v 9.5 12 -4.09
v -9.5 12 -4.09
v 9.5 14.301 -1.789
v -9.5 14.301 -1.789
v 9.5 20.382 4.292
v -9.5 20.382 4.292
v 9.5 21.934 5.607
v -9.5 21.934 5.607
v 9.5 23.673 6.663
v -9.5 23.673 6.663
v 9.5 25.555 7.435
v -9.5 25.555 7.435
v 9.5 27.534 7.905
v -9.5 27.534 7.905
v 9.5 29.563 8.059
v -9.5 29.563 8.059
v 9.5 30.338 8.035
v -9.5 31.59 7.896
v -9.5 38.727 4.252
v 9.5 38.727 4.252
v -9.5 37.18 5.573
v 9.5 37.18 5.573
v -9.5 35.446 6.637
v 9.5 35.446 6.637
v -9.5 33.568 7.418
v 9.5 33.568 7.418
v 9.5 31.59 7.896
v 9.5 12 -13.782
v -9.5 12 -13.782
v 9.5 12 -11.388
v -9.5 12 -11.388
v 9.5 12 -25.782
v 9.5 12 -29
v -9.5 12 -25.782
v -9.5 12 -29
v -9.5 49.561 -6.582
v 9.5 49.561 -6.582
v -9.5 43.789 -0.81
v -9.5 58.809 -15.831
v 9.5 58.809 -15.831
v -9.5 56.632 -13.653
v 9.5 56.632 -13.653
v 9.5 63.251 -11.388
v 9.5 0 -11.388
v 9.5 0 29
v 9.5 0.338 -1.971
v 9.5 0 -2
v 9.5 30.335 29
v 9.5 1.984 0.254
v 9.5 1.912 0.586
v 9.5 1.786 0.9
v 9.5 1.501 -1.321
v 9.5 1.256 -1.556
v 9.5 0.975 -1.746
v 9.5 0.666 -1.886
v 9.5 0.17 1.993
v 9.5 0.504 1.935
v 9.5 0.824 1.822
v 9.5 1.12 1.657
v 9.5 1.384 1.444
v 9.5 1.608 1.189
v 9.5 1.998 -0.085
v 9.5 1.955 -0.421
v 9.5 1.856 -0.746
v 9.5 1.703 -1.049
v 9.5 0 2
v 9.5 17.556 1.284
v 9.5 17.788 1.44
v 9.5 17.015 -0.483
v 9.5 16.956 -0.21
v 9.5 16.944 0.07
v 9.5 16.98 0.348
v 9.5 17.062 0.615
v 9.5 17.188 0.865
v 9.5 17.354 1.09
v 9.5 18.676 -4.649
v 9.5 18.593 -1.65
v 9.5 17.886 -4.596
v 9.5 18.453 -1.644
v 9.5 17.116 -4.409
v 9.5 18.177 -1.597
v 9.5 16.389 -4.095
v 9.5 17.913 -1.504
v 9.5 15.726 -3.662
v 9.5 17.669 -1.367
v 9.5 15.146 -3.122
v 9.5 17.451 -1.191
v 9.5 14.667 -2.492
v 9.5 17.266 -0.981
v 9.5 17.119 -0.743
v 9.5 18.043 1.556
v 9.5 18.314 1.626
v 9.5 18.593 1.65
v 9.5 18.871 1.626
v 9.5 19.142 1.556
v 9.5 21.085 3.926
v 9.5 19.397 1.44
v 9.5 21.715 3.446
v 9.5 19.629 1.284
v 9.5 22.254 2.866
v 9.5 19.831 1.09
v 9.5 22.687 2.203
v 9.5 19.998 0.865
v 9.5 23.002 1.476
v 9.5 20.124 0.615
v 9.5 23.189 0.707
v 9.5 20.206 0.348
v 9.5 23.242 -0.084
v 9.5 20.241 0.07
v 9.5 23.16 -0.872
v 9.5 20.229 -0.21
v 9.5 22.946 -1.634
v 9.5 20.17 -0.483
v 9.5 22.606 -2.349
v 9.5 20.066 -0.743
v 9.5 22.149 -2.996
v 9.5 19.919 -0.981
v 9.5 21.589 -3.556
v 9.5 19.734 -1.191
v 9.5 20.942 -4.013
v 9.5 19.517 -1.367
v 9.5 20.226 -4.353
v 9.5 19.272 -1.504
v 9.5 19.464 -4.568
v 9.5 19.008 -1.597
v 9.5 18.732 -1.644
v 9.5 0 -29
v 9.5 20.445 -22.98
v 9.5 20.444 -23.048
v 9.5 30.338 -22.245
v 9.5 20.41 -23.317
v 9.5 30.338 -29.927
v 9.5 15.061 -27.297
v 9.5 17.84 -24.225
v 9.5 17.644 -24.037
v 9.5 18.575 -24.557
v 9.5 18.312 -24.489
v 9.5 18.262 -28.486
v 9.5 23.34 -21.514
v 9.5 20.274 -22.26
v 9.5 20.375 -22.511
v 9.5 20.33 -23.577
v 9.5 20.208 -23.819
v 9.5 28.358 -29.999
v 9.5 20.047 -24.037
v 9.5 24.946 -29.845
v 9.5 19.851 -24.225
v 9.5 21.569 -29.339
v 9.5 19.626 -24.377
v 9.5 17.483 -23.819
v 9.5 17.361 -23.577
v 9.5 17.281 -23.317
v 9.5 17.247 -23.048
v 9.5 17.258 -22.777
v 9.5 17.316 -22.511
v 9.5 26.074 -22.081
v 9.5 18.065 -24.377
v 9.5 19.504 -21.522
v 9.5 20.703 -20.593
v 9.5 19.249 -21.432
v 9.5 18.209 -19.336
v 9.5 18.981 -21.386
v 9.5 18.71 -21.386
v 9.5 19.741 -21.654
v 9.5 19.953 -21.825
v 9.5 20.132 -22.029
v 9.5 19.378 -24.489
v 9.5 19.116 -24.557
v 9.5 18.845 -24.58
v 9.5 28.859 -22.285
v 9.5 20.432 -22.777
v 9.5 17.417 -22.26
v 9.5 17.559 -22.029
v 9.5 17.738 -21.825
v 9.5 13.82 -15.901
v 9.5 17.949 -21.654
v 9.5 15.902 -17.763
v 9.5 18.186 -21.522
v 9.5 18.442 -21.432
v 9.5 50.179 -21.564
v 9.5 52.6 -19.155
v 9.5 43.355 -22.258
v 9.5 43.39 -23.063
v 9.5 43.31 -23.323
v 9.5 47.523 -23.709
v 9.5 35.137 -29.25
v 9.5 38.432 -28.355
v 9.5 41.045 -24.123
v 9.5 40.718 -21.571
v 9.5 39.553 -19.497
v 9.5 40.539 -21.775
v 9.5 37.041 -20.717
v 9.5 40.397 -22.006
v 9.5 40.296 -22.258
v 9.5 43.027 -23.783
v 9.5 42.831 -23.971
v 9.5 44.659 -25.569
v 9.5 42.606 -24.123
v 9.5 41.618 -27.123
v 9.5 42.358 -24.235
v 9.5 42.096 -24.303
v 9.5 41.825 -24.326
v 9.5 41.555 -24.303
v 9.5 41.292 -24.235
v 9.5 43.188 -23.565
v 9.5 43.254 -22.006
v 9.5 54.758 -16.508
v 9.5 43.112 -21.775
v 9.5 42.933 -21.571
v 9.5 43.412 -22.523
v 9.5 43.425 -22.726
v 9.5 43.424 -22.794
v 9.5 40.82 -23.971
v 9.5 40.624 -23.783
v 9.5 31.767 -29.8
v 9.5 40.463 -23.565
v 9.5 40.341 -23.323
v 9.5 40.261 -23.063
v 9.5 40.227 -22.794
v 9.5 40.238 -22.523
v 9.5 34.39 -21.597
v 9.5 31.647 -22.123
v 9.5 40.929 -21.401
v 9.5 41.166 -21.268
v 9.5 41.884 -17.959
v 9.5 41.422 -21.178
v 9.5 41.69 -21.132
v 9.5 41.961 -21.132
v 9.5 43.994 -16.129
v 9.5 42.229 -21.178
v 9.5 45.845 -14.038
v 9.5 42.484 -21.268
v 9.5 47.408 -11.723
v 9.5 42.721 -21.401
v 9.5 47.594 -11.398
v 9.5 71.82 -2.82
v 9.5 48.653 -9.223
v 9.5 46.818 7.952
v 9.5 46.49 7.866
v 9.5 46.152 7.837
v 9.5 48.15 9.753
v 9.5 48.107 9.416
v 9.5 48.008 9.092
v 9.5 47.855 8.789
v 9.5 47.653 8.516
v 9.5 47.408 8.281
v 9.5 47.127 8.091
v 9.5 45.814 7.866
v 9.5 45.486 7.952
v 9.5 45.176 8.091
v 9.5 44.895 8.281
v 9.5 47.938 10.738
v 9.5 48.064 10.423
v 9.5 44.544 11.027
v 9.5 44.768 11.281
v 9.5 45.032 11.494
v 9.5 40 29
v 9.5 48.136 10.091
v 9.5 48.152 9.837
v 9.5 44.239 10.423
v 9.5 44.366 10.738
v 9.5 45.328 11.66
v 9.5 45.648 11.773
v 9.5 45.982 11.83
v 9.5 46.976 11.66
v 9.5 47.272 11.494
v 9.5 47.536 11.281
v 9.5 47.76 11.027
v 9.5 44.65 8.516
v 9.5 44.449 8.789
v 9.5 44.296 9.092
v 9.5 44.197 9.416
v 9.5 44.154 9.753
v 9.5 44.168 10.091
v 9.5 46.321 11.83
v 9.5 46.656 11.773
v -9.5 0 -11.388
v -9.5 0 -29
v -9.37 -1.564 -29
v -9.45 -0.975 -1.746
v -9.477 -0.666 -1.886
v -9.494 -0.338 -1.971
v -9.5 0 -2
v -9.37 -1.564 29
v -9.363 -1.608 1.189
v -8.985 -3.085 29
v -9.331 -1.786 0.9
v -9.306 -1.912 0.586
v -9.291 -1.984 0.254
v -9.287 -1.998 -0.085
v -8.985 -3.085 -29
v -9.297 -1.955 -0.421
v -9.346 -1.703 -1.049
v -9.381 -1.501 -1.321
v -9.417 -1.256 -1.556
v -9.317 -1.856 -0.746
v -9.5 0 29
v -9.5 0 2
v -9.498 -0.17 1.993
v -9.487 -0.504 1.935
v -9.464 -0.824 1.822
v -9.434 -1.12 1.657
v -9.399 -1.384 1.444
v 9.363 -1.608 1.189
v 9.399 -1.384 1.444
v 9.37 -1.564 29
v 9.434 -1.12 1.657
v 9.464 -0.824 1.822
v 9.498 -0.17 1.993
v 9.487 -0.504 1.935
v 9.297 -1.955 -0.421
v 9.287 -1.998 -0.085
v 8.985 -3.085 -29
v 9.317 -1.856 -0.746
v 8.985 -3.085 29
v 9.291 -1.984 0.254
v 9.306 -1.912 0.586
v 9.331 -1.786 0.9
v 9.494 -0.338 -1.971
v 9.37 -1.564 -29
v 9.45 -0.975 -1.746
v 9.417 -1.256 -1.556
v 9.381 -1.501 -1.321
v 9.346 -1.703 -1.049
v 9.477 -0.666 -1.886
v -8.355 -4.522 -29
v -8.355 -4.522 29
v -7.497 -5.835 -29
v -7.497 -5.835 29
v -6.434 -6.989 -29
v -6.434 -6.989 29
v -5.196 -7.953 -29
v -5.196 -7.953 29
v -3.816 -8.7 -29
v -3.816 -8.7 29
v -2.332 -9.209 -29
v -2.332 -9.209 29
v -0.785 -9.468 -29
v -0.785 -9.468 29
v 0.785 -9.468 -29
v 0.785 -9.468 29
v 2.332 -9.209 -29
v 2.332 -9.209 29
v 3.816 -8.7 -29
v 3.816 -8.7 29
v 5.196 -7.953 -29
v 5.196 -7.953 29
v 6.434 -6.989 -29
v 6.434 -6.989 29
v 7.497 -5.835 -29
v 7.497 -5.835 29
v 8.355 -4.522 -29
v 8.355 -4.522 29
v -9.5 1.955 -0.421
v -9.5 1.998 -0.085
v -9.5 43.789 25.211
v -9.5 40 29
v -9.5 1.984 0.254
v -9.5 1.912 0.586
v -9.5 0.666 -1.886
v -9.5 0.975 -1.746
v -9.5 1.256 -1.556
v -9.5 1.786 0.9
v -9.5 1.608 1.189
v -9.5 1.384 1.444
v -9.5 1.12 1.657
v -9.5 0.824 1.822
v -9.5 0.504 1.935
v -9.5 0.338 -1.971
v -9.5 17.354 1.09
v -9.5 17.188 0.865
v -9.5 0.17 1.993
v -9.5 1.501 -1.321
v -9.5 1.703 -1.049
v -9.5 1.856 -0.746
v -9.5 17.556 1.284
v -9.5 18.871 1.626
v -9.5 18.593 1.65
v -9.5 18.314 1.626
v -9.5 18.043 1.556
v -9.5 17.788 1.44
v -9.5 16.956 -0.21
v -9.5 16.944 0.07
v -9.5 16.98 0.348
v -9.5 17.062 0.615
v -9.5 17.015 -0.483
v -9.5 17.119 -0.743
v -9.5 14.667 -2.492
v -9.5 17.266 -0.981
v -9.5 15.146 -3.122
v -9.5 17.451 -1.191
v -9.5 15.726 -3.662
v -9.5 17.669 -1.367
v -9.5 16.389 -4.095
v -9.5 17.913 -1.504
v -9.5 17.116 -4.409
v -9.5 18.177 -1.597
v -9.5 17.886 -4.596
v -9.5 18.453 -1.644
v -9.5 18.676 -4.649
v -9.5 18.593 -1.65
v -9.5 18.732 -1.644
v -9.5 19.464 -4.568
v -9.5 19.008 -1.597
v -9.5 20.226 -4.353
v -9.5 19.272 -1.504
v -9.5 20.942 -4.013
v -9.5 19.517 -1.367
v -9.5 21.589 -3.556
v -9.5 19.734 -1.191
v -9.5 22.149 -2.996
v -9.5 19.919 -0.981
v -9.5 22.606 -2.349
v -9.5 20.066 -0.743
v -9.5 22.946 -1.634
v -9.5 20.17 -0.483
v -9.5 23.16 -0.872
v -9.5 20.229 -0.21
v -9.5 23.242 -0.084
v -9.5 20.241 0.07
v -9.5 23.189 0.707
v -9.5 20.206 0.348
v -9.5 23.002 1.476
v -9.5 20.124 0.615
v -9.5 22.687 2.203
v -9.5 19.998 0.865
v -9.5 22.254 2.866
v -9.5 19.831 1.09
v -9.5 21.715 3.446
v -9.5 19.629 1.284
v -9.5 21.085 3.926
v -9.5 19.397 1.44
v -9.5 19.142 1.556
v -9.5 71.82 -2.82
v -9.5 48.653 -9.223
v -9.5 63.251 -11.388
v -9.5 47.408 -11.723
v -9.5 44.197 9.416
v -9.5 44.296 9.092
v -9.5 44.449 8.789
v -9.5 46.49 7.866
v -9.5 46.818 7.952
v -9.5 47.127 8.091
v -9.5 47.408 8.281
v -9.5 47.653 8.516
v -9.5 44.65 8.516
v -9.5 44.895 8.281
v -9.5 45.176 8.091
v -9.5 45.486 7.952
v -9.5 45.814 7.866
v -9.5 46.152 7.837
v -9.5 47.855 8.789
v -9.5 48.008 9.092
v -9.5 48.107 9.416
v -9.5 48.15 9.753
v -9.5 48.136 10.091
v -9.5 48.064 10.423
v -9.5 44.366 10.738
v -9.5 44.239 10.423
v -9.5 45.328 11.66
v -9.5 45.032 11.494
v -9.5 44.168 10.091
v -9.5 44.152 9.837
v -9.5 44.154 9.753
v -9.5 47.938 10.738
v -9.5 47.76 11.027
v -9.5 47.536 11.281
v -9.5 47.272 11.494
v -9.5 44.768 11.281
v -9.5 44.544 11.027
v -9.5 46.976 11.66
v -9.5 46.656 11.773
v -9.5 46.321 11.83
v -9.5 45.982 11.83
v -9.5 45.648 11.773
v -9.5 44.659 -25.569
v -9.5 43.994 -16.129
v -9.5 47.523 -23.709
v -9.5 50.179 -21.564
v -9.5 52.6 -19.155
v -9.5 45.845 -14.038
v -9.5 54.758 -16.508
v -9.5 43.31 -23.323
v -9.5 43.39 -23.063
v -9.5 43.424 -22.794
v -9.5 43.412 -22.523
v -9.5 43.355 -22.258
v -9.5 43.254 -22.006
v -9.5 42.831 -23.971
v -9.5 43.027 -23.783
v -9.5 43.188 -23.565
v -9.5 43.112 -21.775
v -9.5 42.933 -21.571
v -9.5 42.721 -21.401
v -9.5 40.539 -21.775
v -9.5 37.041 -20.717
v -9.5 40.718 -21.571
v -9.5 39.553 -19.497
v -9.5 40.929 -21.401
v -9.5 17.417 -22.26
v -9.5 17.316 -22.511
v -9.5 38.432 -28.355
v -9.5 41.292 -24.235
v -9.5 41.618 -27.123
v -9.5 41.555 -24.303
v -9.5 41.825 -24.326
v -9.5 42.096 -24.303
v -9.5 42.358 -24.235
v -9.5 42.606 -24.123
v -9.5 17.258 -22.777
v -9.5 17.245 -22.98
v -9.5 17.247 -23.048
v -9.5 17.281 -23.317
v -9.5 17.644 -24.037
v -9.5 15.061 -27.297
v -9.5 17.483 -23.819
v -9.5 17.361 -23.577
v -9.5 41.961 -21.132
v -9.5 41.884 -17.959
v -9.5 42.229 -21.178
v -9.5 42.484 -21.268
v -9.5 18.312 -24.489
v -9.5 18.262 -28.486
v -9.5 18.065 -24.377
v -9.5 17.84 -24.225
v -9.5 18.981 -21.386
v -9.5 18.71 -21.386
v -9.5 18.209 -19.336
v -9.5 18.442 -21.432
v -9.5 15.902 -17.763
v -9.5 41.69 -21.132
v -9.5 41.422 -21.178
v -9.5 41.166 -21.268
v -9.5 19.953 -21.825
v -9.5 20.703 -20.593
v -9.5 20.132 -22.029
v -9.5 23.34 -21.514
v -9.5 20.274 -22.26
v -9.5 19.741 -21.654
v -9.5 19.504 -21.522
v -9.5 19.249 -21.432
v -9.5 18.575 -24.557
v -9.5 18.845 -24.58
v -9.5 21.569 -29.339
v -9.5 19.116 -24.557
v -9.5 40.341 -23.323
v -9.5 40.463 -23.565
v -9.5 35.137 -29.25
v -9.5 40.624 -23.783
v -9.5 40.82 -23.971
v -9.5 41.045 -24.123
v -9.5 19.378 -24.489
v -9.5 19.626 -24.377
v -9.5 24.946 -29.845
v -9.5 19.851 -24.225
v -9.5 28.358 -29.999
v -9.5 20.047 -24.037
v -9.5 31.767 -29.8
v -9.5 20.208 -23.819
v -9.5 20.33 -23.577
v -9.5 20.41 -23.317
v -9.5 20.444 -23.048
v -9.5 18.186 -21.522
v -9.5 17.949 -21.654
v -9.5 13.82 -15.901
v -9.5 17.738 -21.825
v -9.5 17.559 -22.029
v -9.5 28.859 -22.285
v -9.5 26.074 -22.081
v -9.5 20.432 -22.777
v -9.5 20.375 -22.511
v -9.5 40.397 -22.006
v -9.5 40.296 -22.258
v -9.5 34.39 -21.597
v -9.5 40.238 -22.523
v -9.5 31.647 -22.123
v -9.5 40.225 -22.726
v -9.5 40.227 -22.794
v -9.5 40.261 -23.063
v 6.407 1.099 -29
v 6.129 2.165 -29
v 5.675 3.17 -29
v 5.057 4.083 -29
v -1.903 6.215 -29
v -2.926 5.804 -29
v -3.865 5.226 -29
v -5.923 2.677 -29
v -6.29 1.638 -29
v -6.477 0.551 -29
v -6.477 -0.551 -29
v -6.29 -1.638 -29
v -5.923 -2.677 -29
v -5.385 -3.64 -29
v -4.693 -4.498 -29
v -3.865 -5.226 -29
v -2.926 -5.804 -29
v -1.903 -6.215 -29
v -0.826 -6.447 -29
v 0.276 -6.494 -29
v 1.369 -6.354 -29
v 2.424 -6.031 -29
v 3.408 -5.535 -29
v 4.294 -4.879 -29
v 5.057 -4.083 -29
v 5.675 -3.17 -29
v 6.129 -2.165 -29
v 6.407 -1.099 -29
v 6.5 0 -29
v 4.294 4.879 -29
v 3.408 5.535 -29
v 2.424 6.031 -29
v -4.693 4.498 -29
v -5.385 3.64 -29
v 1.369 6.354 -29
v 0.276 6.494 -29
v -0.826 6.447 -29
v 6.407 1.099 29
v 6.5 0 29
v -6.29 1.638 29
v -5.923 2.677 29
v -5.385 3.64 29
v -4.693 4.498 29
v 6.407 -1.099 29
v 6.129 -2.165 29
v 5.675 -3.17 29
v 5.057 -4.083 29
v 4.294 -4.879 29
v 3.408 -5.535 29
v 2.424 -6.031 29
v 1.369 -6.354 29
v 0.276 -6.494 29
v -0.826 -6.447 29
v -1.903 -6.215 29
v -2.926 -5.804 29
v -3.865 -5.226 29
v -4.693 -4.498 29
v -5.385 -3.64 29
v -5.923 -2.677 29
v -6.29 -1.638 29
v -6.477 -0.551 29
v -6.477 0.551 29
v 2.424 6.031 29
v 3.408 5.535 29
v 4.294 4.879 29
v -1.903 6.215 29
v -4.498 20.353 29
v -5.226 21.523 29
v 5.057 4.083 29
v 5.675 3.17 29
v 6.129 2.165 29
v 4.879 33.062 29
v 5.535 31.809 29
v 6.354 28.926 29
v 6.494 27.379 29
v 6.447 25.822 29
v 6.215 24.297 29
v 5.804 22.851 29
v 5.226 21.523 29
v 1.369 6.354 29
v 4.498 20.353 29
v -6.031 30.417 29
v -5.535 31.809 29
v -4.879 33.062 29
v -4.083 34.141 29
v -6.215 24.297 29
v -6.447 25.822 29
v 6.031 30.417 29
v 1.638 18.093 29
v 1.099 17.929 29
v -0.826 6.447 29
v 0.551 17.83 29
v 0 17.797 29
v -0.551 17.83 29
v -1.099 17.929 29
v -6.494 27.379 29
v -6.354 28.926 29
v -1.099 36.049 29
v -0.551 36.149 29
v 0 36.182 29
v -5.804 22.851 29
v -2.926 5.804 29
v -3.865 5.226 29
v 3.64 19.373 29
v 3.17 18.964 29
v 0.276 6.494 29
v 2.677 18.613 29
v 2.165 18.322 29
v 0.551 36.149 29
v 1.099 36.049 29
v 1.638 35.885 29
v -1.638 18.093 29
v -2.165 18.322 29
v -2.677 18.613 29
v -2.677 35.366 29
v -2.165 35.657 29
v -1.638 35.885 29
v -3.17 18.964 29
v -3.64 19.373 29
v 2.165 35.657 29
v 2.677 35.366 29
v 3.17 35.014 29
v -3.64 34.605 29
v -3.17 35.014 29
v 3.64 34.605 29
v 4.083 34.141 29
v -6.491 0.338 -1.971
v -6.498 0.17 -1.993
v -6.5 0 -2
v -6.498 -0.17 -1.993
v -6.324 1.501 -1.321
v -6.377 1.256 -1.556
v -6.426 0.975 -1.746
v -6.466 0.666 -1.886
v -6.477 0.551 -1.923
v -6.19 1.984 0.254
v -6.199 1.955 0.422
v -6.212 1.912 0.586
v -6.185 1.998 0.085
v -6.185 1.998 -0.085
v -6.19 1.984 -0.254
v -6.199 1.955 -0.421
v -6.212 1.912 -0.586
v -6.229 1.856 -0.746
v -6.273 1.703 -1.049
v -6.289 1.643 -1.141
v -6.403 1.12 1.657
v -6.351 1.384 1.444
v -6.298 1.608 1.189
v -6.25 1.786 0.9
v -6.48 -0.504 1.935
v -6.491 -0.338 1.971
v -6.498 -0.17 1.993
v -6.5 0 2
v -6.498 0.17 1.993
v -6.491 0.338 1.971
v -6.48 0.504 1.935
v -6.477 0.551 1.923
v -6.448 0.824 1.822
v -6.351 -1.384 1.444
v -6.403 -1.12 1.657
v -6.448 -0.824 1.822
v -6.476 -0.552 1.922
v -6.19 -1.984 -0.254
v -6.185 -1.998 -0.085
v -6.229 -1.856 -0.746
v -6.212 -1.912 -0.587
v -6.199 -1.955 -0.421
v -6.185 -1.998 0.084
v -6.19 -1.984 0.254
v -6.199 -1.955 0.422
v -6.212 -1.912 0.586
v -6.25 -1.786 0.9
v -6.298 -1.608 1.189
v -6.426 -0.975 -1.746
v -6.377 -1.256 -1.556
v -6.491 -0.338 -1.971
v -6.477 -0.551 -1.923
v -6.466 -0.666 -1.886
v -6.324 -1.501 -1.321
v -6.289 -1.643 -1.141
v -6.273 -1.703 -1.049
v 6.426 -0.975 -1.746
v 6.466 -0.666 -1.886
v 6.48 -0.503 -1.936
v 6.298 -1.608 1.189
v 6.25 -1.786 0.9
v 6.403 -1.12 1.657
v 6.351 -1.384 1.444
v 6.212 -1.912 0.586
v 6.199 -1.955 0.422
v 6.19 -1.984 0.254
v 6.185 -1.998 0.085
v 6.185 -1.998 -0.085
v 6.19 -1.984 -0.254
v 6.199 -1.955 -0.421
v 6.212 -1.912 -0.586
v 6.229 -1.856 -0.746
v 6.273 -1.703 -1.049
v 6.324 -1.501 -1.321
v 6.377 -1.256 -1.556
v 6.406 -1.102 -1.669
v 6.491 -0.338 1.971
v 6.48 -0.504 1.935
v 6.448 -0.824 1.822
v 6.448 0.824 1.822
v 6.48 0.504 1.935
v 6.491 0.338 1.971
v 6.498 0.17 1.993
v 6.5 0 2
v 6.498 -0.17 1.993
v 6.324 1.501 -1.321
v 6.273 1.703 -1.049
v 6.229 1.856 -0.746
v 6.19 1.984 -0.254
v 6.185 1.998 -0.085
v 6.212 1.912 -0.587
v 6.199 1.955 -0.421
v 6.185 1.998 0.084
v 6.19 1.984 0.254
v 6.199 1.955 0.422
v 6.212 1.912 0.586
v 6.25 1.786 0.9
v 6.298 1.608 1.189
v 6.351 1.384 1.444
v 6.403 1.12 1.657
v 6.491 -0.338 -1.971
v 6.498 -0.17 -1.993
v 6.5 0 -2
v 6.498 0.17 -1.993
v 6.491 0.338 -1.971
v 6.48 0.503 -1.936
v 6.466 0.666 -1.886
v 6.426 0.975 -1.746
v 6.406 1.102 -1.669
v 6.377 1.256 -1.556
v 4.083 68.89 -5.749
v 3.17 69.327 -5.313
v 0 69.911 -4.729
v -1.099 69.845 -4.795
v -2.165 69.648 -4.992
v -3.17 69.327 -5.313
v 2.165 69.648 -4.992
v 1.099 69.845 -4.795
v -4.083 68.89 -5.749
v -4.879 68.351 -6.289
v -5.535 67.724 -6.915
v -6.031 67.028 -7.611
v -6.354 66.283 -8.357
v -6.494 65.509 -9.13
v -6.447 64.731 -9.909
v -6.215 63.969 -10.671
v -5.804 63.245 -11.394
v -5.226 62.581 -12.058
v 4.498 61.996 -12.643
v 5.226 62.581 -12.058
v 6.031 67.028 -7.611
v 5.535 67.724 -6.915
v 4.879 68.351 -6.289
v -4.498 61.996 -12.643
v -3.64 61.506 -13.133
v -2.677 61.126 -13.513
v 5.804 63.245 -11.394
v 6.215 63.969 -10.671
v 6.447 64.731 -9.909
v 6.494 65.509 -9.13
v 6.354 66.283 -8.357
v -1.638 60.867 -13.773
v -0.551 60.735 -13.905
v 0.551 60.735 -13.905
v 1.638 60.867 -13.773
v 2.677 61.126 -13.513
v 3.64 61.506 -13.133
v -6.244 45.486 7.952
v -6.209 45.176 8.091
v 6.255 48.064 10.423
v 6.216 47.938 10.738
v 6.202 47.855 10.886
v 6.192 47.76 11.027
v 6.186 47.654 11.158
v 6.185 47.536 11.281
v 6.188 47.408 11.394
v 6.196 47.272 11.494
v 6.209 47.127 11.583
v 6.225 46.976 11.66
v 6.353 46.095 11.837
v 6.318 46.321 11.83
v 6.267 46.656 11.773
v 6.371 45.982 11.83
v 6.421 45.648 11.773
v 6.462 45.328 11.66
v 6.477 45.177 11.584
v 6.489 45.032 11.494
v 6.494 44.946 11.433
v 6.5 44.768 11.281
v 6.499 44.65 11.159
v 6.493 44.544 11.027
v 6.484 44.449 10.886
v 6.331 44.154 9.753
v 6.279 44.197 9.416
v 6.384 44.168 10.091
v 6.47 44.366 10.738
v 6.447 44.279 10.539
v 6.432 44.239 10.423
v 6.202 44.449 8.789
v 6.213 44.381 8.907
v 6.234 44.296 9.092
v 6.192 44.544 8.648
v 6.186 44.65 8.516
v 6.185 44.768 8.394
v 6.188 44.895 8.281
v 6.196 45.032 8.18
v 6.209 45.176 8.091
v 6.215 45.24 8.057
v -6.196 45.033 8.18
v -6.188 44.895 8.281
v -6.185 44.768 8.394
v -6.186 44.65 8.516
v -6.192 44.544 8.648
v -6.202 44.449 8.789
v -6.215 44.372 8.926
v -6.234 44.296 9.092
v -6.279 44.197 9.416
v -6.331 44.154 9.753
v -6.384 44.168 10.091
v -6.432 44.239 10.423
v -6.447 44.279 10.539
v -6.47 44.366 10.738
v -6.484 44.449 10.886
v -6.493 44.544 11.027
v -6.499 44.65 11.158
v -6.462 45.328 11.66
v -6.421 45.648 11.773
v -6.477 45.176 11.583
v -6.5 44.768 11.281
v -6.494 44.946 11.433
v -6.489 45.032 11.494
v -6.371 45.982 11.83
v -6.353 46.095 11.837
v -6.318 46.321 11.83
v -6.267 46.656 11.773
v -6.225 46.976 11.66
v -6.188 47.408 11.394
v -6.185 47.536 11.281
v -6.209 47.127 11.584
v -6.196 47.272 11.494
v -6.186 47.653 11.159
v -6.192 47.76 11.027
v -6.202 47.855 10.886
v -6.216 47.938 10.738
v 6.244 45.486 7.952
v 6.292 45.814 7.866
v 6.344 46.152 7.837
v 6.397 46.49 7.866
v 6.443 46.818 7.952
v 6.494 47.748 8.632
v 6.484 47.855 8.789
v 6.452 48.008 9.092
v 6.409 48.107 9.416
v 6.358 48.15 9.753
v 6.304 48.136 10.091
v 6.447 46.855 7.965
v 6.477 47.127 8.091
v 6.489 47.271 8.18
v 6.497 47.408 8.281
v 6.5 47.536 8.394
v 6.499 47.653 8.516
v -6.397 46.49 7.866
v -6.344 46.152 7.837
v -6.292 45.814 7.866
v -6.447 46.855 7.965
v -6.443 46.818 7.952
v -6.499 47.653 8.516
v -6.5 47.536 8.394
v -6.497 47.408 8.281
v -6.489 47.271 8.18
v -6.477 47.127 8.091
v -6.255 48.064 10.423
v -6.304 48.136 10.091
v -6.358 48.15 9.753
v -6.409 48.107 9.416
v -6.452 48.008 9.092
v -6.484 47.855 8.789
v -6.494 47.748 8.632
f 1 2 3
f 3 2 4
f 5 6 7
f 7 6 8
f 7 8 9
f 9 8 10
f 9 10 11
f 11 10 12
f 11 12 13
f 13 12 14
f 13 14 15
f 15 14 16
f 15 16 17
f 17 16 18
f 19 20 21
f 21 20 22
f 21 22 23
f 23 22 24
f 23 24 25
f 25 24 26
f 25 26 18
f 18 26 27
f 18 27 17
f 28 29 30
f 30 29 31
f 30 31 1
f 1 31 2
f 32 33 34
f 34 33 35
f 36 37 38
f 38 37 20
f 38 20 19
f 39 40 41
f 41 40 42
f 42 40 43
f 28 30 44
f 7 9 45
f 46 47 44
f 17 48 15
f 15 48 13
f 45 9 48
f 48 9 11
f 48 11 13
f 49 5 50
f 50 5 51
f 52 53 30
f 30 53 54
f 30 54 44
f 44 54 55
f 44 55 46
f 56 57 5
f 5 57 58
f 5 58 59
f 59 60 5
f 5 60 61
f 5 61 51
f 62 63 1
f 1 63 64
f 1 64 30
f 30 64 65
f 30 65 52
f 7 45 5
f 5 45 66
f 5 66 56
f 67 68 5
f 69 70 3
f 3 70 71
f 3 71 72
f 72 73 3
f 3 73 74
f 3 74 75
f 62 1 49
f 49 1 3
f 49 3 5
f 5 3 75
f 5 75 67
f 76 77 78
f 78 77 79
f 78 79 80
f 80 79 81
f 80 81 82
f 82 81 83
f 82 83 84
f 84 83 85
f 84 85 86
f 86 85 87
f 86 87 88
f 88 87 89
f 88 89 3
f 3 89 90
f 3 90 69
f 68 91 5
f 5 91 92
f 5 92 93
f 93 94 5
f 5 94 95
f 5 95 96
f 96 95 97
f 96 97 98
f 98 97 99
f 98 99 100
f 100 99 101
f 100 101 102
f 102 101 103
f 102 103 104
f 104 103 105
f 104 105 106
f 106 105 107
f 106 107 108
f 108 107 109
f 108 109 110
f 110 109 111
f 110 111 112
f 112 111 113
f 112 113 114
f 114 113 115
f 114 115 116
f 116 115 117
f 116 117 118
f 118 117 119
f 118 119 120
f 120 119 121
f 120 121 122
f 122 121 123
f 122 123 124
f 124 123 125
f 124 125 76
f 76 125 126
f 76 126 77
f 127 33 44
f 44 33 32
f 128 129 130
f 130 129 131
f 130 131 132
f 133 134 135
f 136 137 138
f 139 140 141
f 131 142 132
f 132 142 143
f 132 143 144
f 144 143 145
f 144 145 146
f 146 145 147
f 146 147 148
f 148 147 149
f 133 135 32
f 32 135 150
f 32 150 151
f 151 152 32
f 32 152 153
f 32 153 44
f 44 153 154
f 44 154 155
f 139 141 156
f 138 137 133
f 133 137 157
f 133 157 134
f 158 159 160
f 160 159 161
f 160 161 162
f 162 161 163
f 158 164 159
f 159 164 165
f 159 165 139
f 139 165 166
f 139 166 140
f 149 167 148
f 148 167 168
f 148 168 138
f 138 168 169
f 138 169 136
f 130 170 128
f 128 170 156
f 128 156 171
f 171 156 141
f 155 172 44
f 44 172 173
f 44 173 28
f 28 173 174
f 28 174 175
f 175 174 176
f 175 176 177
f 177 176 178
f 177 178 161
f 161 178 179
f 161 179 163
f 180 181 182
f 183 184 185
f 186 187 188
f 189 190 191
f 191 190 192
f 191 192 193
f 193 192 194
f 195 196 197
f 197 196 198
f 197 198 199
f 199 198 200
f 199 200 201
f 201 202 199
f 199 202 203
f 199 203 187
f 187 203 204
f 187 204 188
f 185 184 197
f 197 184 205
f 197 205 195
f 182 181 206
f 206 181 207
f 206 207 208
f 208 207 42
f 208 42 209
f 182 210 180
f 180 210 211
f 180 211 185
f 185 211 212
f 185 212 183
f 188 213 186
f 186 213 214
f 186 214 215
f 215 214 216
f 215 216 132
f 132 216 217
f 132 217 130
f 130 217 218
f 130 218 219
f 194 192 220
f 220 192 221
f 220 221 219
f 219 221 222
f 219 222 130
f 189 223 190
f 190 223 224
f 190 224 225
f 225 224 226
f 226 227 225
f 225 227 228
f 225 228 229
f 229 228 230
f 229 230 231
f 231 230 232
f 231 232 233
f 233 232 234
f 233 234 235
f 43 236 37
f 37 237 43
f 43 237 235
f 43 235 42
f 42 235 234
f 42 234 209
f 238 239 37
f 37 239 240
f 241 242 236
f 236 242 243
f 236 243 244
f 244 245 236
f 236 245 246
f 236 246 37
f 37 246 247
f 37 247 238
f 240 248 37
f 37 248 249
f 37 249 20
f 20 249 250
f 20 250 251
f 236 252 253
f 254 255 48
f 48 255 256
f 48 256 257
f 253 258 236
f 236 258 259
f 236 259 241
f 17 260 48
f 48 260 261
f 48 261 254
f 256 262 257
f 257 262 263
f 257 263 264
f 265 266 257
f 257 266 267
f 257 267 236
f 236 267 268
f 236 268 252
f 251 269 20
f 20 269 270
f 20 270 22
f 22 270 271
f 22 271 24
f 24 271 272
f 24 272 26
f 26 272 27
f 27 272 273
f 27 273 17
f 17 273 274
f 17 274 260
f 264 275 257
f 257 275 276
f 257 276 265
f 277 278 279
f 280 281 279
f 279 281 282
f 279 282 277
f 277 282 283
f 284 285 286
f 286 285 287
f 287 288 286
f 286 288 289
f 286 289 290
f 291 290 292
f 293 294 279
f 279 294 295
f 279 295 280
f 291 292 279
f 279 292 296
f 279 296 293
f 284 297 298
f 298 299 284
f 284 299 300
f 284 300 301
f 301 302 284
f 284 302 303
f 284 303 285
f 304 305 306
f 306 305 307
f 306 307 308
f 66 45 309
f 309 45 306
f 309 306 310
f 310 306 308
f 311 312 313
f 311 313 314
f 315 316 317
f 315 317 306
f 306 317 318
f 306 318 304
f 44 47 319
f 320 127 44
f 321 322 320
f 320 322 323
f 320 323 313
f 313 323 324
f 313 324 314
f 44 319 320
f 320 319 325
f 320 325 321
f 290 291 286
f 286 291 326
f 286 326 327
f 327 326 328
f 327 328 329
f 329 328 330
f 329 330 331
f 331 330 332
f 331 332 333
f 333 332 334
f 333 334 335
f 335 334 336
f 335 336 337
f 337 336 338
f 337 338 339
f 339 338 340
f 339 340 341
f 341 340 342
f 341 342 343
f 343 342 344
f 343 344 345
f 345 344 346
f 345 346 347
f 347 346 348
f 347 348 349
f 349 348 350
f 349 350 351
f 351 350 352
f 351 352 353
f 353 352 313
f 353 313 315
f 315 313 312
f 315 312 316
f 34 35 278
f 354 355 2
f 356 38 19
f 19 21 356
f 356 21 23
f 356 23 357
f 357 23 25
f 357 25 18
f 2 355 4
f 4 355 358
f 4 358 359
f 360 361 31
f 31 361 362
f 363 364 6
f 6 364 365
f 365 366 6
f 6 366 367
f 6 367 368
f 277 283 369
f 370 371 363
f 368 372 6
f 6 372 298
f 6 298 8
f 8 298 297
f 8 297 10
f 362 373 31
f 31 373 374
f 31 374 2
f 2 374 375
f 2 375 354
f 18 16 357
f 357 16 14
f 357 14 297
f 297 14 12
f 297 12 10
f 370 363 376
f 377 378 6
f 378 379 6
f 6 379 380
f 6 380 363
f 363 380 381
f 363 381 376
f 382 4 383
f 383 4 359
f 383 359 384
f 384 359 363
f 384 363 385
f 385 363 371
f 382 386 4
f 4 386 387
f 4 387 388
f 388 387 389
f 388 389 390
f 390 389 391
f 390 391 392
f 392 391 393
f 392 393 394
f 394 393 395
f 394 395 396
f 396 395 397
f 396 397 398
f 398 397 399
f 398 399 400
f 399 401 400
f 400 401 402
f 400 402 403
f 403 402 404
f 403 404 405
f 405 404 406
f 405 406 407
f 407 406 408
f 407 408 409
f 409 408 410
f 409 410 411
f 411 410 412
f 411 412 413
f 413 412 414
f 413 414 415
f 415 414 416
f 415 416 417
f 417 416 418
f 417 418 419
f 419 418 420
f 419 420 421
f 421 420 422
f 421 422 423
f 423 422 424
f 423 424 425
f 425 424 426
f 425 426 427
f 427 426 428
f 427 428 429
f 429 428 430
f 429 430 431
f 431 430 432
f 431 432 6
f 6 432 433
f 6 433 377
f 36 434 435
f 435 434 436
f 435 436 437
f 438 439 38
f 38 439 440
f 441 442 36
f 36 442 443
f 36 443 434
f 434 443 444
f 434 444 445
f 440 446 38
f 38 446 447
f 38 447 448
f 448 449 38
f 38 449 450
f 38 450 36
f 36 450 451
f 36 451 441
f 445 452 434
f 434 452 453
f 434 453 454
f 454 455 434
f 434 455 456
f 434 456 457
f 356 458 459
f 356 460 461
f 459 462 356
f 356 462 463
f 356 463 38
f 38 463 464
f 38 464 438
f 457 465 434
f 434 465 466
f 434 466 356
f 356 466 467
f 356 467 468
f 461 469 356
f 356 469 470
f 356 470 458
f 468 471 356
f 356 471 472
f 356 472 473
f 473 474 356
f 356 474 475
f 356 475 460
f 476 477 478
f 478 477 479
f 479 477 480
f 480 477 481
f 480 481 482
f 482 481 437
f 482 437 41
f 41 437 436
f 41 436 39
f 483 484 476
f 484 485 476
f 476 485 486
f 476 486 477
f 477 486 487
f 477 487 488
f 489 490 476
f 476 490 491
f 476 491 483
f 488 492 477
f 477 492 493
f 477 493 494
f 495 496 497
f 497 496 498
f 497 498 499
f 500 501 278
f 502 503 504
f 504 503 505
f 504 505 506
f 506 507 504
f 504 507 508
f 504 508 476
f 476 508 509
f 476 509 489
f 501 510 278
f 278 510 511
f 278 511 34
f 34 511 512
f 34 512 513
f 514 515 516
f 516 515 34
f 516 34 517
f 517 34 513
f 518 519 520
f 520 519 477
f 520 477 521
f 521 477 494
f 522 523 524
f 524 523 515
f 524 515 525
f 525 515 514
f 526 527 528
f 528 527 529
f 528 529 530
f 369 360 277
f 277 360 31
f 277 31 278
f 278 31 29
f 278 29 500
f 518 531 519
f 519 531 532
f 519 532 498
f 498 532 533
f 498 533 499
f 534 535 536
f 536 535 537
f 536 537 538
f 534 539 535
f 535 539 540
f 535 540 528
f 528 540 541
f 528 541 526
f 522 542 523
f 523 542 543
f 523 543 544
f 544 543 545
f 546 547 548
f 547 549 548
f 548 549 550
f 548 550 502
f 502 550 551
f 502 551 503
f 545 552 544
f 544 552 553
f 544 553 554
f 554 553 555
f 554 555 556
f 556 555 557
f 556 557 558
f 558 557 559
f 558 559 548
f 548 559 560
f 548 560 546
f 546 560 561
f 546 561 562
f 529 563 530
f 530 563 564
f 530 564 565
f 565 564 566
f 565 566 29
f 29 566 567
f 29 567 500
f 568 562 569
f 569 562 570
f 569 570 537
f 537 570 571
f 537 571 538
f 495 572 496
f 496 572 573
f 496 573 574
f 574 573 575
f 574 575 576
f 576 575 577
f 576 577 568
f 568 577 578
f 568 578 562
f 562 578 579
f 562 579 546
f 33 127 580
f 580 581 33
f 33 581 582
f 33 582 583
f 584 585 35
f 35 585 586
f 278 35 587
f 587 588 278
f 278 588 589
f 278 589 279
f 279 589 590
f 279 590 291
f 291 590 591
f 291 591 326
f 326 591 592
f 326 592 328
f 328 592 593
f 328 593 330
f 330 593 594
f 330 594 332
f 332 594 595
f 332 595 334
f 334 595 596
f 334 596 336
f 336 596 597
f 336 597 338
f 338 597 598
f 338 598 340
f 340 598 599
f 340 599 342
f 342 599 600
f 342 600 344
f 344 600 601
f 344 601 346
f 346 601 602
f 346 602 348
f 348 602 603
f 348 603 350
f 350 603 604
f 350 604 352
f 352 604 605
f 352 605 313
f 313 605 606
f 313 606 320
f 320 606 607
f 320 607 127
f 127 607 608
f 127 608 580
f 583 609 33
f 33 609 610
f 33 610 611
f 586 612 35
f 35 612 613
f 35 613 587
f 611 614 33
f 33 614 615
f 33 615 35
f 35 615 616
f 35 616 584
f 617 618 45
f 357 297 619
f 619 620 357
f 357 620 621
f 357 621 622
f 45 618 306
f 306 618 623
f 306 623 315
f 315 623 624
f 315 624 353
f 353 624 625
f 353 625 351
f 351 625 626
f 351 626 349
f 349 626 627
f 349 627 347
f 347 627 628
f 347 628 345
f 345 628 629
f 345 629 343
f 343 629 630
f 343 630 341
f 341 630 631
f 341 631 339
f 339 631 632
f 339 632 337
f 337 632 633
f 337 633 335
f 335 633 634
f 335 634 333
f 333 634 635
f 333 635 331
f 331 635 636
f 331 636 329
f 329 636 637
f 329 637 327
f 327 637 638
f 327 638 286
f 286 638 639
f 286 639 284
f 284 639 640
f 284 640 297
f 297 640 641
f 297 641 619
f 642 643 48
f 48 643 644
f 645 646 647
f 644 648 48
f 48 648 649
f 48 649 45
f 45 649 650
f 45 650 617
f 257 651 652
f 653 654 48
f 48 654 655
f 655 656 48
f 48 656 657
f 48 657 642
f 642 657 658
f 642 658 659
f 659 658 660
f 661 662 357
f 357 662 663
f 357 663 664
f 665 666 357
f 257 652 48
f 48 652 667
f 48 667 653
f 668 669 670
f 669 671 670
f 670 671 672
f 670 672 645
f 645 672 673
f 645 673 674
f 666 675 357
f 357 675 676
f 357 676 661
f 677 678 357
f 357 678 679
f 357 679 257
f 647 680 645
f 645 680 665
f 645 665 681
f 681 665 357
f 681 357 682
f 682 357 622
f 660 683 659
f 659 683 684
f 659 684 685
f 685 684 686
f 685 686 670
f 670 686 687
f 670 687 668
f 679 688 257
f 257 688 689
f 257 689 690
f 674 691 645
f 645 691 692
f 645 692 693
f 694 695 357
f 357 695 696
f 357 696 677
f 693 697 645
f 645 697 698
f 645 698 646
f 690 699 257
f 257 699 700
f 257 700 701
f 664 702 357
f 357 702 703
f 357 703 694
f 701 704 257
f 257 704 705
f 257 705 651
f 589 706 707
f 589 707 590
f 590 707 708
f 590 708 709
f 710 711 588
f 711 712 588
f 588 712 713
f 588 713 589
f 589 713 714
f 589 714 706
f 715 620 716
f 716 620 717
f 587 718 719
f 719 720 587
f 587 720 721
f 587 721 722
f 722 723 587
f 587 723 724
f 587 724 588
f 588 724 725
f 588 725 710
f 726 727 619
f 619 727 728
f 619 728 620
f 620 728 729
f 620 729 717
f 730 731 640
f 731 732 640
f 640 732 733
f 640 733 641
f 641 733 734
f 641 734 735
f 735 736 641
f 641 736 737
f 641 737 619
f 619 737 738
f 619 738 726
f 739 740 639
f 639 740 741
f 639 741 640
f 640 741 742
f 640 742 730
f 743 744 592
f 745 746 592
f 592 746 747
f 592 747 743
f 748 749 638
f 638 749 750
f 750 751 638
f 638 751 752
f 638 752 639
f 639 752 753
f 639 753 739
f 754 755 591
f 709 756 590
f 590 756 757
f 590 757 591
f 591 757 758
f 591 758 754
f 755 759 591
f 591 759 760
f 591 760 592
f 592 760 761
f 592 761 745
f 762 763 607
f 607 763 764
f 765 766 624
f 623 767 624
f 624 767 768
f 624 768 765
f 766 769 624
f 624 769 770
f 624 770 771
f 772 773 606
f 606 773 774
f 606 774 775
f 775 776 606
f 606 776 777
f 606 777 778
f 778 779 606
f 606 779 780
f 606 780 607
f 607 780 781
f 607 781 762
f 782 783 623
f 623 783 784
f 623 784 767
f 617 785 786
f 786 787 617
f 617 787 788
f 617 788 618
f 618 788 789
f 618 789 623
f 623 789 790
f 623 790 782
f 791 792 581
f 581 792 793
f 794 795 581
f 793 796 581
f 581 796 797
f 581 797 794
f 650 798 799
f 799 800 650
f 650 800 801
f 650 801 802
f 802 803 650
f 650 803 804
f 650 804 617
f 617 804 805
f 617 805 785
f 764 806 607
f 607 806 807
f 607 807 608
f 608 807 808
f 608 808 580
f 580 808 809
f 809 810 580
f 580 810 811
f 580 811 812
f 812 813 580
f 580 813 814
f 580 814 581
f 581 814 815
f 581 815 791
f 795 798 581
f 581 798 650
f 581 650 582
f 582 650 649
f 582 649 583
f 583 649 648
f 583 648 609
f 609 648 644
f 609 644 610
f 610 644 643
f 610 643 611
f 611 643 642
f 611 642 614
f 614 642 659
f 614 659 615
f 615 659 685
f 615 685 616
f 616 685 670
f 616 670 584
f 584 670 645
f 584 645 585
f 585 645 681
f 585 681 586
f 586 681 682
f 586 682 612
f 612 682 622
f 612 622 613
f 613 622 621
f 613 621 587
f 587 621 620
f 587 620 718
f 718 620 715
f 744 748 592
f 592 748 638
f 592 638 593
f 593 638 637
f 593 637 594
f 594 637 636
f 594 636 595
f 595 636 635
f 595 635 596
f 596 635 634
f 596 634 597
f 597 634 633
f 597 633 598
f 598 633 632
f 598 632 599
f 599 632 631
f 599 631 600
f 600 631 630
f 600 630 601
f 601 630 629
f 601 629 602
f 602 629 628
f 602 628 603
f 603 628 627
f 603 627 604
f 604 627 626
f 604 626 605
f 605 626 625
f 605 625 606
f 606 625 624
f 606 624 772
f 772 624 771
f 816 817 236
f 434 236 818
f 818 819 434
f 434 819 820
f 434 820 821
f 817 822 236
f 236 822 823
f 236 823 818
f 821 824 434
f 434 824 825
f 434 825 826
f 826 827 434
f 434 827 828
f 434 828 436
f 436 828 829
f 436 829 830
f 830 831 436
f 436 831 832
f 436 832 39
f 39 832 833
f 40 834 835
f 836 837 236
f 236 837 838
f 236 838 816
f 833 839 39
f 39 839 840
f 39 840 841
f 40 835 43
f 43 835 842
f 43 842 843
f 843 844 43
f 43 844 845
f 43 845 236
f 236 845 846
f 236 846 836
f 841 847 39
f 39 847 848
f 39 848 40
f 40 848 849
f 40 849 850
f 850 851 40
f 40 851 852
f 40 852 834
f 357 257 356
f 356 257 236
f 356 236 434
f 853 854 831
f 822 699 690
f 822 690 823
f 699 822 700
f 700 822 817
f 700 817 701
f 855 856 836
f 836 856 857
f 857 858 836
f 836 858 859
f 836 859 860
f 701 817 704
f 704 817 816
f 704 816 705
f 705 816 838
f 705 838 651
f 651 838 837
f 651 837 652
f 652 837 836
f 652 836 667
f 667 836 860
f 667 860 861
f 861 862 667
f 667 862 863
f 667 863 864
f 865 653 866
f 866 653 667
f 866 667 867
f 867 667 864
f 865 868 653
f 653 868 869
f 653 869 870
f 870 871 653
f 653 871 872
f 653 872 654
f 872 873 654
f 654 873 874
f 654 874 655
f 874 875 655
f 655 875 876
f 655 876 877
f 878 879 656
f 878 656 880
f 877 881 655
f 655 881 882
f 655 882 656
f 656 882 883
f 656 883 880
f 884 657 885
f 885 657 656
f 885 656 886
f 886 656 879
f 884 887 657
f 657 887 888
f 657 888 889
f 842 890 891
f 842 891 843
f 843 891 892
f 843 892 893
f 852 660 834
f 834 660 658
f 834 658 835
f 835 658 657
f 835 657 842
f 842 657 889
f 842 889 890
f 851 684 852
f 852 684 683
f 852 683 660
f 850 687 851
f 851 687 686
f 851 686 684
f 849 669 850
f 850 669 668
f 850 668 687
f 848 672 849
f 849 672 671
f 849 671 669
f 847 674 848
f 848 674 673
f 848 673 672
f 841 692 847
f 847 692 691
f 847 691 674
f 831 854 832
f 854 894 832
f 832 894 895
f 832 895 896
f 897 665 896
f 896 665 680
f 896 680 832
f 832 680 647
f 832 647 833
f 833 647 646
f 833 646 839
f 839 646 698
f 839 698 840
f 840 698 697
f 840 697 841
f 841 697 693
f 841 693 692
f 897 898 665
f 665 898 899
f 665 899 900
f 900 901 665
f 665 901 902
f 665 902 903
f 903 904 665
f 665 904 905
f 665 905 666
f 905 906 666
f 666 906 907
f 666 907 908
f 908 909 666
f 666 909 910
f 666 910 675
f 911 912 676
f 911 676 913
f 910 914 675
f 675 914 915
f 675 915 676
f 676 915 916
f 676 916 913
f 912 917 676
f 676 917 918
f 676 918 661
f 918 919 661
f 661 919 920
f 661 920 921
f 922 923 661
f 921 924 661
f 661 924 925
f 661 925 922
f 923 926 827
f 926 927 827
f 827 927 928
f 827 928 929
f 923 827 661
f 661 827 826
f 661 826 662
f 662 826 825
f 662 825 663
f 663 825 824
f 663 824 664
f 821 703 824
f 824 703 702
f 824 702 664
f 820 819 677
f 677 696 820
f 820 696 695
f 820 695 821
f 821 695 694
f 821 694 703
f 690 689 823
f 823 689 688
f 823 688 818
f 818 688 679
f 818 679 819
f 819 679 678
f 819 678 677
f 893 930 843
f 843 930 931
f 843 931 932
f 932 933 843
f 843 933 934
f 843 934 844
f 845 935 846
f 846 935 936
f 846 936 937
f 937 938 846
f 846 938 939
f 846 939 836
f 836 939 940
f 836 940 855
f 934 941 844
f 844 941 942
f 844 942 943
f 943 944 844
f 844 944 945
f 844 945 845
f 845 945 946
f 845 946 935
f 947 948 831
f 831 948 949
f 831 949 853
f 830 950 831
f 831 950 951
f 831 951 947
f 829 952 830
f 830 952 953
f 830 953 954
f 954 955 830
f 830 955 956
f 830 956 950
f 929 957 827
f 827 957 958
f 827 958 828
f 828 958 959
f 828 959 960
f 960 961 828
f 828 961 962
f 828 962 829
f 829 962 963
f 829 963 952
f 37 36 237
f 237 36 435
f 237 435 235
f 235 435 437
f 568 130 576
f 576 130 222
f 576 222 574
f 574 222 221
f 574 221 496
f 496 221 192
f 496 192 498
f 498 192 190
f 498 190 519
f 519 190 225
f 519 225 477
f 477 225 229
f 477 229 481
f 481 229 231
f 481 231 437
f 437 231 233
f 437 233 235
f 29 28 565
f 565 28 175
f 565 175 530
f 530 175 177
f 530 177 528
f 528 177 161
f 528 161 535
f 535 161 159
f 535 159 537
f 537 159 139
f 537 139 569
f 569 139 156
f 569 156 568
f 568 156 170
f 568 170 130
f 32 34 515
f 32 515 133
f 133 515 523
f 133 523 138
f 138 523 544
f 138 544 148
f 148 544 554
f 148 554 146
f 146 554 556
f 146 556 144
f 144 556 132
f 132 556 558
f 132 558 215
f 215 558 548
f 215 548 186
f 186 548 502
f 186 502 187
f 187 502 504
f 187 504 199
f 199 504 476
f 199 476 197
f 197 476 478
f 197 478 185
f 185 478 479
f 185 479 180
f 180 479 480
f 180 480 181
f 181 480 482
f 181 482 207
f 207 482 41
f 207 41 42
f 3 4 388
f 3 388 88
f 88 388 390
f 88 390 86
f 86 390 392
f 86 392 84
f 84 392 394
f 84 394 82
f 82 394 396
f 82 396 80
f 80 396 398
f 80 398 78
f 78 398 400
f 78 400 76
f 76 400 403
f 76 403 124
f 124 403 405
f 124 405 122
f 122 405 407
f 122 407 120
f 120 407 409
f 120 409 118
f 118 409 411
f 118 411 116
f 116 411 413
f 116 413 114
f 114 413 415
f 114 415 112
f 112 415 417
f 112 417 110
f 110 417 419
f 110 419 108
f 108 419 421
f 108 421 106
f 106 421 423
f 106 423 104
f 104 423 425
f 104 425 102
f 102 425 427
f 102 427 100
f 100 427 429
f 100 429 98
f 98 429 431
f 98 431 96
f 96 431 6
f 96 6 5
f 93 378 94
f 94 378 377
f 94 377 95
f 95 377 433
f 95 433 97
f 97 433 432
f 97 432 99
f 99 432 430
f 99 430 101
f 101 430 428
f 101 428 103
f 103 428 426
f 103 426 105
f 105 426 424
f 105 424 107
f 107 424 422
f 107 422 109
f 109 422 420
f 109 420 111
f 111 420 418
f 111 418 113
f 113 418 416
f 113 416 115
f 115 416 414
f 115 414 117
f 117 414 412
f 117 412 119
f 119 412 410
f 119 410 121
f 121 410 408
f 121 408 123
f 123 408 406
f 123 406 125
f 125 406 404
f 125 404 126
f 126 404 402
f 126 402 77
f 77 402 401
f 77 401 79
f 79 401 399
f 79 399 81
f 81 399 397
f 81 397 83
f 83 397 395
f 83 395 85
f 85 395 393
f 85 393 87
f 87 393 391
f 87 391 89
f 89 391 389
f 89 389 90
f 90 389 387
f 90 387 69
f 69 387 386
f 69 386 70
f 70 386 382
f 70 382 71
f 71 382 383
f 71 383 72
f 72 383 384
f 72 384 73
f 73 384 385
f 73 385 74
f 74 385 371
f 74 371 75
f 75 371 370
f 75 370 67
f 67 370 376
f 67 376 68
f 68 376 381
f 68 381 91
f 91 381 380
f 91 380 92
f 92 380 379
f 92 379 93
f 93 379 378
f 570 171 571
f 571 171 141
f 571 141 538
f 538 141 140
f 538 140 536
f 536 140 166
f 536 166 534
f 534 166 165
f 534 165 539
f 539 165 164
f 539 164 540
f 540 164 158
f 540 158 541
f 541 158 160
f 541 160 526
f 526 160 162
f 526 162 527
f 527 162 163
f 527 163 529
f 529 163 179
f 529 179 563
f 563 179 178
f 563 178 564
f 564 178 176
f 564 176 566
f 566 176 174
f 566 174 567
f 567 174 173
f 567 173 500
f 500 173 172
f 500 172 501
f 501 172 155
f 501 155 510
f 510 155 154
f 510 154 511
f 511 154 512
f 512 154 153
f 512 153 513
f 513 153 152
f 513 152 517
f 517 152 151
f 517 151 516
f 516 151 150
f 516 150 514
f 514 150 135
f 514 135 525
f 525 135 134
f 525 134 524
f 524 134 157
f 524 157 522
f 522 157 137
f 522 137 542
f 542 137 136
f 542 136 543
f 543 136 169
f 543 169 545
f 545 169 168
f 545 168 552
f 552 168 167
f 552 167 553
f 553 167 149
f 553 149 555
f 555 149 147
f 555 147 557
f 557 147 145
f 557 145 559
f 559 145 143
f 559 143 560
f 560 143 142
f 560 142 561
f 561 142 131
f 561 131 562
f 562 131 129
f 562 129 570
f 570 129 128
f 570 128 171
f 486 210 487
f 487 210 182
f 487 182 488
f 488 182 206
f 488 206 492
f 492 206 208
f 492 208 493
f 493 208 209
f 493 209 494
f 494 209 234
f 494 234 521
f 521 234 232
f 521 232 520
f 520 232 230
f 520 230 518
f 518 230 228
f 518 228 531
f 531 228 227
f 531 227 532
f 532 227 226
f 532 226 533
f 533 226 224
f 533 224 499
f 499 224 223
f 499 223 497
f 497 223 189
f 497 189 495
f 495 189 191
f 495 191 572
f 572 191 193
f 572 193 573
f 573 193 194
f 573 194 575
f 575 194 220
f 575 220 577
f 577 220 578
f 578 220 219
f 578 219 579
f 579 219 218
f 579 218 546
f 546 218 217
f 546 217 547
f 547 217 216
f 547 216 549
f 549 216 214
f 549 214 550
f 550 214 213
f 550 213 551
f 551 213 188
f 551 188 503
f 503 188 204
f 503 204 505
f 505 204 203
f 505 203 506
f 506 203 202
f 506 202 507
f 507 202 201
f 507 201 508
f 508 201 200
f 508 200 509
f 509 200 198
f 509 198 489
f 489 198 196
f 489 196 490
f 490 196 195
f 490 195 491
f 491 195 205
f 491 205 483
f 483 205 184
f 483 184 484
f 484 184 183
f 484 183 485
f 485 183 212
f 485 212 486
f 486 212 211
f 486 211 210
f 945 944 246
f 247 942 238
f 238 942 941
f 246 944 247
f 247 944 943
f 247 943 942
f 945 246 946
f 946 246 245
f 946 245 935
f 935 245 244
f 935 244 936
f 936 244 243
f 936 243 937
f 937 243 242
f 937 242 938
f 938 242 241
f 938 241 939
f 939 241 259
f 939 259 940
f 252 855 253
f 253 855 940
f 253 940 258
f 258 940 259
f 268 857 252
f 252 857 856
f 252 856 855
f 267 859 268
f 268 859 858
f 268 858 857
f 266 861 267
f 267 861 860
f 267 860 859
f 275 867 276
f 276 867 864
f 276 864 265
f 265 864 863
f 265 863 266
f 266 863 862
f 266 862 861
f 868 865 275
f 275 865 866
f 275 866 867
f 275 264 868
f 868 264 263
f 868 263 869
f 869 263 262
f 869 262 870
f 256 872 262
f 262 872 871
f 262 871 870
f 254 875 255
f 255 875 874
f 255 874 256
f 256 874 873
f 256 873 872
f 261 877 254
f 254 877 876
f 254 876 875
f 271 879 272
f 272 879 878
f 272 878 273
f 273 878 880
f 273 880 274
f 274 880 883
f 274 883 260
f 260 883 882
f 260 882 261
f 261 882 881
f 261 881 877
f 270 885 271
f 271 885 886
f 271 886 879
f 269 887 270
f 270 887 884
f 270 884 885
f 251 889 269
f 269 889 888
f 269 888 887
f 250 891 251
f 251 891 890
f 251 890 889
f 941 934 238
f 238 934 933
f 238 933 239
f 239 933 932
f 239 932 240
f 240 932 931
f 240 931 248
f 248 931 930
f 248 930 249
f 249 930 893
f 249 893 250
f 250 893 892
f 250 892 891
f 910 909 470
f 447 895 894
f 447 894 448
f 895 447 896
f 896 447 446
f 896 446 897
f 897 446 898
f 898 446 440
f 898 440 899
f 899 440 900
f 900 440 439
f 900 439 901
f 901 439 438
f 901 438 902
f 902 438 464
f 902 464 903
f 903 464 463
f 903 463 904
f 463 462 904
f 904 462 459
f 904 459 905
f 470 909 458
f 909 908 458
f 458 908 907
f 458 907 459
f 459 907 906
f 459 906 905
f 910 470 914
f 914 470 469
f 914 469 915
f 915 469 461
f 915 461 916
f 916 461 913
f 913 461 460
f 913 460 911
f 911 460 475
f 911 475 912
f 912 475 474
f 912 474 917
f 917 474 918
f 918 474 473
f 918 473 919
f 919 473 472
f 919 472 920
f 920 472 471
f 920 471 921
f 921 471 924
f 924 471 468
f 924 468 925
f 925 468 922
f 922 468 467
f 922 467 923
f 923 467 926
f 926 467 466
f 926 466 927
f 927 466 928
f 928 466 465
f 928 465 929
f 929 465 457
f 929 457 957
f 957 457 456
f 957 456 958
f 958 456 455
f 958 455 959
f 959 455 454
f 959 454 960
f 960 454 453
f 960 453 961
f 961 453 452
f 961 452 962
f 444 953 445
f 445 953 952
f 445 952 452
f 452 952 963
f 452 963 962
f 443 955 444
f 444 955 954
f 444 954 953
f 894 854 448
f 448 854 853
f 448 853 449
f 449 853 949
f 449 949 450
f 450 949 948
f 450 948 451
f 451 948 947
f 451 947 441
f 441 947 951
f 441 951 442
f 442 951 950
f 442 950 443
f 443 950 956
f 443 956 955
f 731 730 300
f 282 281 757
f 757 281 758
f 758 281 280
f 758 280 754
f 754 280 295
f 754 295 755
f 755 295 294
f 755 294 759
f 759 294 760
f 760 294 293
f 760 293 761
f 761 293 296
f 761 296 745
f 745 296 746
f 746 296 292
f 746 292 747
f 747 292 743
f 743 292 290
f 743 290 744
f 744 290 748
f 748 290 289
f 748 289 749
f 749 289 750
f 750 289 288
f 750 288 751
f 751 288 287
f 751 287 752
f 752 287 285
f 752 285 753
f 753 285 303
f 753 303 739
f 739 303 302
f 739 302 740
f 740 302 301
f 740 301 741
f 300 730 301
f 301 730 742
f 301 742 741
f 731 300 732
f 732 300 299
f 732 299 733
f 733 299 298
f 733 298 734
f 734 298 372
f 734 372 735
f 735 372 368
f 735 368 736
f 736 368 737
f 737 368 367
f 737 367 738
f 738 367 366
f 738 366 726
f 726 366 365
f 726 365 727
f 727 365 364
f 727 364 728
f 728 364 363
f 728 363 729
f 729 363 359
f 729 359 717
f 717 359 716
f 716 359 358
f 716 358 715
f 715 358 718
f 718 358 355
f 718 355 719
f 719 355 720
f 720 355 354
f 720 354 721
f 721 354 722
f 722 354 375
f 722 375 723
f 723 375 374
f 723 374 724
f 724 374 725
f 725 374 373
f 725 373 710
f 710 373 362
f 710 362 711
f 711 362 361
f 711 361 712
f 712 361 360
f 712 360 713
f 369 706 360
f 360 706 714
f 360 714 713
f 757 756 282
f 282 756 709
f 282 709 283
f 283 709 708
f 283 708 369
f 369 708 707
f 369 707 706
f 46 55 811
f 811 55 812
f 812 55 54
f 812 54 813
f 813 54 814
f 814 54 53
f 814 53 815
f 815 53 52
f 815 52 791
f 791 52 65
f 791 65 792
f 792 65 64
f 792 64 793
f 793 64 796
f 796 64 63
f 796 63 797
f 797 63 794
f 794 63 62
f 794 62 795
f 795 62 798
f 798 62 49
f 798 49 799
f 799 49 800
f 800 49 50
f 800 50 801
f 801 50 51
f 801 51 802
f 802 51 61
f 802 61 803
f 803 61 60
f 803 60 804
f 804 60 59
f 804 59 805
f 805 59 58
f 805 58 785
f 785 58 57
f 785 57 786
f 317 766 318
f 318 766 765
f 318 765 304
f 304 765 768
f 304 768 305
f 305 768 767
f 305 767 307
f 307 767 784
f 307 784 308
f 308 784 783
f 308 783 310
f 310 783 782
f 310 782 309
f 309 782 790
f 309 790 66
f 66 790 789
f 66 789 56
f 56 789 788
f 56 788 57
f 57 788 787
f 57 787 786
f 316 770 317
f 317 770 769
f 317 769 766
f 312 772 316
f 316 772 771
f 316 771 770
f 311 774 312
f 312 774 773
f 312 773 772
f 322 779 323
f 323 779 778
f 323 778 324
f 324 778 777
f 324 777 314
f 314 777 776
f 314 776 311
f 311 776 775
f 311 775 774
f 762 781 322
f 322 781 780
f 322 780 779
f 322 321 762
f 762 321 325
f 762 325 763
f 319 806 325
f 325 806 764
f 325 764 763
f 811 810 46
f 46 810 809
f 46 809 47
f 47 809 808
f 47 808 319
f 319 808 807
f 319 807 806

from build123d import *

# Parameters (mm, degrees)
CROQUIS1_R              = 6.5
SALIENTE_EXTRUIR1_DEPTH = 29
SALIENTE_EXTRUIR2_DEPTH = 9.5
CROQUIS3_R              = 6.5
CORTAR_EXTRUIR1_DEPTH   = 73
SALIENTE_EXTRUIR3_DEPTH = 9.5
CROQUIS5_R              = 4.65
CROQUIS5_R_2            = 1.65
SALIENTE_EXTRUIR4_DEPTH = 9.5
CROQUIS6_R              = 1.6
CORTAR_EXTRUIR2_DEPTH   = 15
CROQUIS7_R              = 2
CORTAR_EXTRUIR3_DEPTH   = 26.5


with BuildPart() as part:
    # Croquis1 → Saliente-Extruir1 (new body, symmetric)
    with BuildSketch(Plane.XY):
        with BuildLine():
            Line((-9.5, 12), (9.5, 12))
            Line((9.5, 12), (9.5, 0))
            ThreePointArc((9.5, 0), (0, -9.5), (-9.5, 0))
            Line((-9.5, 0), (-9.5, 12))
        make_face()
        Circle(CROQUIS1_R, mode=Mode.SUBTRACT)
    extrude(amount=SALIENTE_EXTRUIR1_DEPTH, both=True)

    # Croquis2 → Saliente-Extruir2 (add, symmetric)
    with BuildSketch(Plane(origin=(0, 0, 0), x_dir=(0, 0, -1), z_dir=(1, 0, 0))):
        with BuildLine():
            Line((-29, 12), (-29, 40))
            Line((-29, 40), (2.819805153, 71.819805153))
            Line((2.819805153, 71.819805153), (15.830569927, 58.80904038))
            Line((15.830569927, 58.80904038), (-4.251796904, 38.726673548))
            ThreePointArc((-4.251796904, 38.726673548), (-8.059408749, 29.534285393), (-4.251796904, 20.341897237))
            Line((-4.251796904, 20.341897237), (4.090100333, 12))
            Line((4.090100333, 12), (-29, 12))
        make_face()
    extrude(amount=SALIENTE_EXTRUIR2_DEPTH, both=True)

    # Croquis3 → Cortar-Extruir1 (cut)
    with BuildSketch(Plane(origin=(0, 37.319805153, -37.319805153), x_dir=(1, 0, 0), z_dir=(0, 0.707106781, -0.707106781))):
        with Locations((0, -39.590367902)):
            Circle(CROQUIS3_R)
    extrude(amount=-CORTAR_EXTRUIR1_DEPTH, mode=Mode.SUBTRACT)

    # Croquis4 → Saliente-Extruir3 (add, symmetric)
    with BuildSketch(Plane(origin=(0, 0, 0), x_dir=(0, 0, -1), z_dir=(1, 0, 0))):
        with BuildLine():
            Line((6.58232419, 49.560794642), (13.653392001, 56.631862454))
            ThreePointArc((13.653392001, 56.631862454), (28.845023505, 36.796295198), (25.782485256, 12))
            Line((25.782485256, 12), (13.782485256, 12))
            ThreePointArc((13.782485256, 12), (21.90502045, 33.027546833), (6.58232419, 49.560794642))
        make_face()
    extrude(amount=SALIENTE_EXTRUIR3_DEPTH, both=True)

    # Croquis5 → Saliente-Extruir4 (add, symmetric)
    with BuildSketch(Plane(origin=(0, 0, 0), x_dir=(0, 0, -1), z_dir=(1, 0, 0))):
        with Locations((0, 18.59255238)):
            Circle(CROQUIS5_R)
        with Locations((0, 18.59255238)):
            Circle(CROQUIS5_R_2, mode=Mode.SUBTRACT)
    extrude(amount=SALIENTE_EXTRUIR4_DEPTH, both=True)

    # Croquis6 → Cortar-Extruir2 (cut, symmetric)
    with BuildSketch(Plane(origin=(0, 0, 0), x_dir=(0, 0, -1), z_dir=(1, 0, 0))):
        with Locations((22.726275042, 41.82542613)):
            Circle(CROQUIS6_R)
        with Locations((22.98, 18.84542613)):
            Circle(CROQUIS6_R)
    extrude(amount=CORTAR_EXTRUIR2_DEPTH, both=True, mode=Mode.SUBTRACT)

    # Croquis7 → Cortar-Extruir3 (cut, symmetric)
    with BuildSketch(Plane(origin=(0, 0, 0), x_dir=(0, 0, -1), z_dir=(1, 0, 0))):
        Circle(CROQUIS7_R)
        with Locations((-9.83740623, 46.151828996)):
            Circle(CROQUIS7_R)
    extrude(amount=CORTAR_EXTRUIR3_DEPTH, both=True, mode=Mode.SUBTRACT)


solid = part.part
